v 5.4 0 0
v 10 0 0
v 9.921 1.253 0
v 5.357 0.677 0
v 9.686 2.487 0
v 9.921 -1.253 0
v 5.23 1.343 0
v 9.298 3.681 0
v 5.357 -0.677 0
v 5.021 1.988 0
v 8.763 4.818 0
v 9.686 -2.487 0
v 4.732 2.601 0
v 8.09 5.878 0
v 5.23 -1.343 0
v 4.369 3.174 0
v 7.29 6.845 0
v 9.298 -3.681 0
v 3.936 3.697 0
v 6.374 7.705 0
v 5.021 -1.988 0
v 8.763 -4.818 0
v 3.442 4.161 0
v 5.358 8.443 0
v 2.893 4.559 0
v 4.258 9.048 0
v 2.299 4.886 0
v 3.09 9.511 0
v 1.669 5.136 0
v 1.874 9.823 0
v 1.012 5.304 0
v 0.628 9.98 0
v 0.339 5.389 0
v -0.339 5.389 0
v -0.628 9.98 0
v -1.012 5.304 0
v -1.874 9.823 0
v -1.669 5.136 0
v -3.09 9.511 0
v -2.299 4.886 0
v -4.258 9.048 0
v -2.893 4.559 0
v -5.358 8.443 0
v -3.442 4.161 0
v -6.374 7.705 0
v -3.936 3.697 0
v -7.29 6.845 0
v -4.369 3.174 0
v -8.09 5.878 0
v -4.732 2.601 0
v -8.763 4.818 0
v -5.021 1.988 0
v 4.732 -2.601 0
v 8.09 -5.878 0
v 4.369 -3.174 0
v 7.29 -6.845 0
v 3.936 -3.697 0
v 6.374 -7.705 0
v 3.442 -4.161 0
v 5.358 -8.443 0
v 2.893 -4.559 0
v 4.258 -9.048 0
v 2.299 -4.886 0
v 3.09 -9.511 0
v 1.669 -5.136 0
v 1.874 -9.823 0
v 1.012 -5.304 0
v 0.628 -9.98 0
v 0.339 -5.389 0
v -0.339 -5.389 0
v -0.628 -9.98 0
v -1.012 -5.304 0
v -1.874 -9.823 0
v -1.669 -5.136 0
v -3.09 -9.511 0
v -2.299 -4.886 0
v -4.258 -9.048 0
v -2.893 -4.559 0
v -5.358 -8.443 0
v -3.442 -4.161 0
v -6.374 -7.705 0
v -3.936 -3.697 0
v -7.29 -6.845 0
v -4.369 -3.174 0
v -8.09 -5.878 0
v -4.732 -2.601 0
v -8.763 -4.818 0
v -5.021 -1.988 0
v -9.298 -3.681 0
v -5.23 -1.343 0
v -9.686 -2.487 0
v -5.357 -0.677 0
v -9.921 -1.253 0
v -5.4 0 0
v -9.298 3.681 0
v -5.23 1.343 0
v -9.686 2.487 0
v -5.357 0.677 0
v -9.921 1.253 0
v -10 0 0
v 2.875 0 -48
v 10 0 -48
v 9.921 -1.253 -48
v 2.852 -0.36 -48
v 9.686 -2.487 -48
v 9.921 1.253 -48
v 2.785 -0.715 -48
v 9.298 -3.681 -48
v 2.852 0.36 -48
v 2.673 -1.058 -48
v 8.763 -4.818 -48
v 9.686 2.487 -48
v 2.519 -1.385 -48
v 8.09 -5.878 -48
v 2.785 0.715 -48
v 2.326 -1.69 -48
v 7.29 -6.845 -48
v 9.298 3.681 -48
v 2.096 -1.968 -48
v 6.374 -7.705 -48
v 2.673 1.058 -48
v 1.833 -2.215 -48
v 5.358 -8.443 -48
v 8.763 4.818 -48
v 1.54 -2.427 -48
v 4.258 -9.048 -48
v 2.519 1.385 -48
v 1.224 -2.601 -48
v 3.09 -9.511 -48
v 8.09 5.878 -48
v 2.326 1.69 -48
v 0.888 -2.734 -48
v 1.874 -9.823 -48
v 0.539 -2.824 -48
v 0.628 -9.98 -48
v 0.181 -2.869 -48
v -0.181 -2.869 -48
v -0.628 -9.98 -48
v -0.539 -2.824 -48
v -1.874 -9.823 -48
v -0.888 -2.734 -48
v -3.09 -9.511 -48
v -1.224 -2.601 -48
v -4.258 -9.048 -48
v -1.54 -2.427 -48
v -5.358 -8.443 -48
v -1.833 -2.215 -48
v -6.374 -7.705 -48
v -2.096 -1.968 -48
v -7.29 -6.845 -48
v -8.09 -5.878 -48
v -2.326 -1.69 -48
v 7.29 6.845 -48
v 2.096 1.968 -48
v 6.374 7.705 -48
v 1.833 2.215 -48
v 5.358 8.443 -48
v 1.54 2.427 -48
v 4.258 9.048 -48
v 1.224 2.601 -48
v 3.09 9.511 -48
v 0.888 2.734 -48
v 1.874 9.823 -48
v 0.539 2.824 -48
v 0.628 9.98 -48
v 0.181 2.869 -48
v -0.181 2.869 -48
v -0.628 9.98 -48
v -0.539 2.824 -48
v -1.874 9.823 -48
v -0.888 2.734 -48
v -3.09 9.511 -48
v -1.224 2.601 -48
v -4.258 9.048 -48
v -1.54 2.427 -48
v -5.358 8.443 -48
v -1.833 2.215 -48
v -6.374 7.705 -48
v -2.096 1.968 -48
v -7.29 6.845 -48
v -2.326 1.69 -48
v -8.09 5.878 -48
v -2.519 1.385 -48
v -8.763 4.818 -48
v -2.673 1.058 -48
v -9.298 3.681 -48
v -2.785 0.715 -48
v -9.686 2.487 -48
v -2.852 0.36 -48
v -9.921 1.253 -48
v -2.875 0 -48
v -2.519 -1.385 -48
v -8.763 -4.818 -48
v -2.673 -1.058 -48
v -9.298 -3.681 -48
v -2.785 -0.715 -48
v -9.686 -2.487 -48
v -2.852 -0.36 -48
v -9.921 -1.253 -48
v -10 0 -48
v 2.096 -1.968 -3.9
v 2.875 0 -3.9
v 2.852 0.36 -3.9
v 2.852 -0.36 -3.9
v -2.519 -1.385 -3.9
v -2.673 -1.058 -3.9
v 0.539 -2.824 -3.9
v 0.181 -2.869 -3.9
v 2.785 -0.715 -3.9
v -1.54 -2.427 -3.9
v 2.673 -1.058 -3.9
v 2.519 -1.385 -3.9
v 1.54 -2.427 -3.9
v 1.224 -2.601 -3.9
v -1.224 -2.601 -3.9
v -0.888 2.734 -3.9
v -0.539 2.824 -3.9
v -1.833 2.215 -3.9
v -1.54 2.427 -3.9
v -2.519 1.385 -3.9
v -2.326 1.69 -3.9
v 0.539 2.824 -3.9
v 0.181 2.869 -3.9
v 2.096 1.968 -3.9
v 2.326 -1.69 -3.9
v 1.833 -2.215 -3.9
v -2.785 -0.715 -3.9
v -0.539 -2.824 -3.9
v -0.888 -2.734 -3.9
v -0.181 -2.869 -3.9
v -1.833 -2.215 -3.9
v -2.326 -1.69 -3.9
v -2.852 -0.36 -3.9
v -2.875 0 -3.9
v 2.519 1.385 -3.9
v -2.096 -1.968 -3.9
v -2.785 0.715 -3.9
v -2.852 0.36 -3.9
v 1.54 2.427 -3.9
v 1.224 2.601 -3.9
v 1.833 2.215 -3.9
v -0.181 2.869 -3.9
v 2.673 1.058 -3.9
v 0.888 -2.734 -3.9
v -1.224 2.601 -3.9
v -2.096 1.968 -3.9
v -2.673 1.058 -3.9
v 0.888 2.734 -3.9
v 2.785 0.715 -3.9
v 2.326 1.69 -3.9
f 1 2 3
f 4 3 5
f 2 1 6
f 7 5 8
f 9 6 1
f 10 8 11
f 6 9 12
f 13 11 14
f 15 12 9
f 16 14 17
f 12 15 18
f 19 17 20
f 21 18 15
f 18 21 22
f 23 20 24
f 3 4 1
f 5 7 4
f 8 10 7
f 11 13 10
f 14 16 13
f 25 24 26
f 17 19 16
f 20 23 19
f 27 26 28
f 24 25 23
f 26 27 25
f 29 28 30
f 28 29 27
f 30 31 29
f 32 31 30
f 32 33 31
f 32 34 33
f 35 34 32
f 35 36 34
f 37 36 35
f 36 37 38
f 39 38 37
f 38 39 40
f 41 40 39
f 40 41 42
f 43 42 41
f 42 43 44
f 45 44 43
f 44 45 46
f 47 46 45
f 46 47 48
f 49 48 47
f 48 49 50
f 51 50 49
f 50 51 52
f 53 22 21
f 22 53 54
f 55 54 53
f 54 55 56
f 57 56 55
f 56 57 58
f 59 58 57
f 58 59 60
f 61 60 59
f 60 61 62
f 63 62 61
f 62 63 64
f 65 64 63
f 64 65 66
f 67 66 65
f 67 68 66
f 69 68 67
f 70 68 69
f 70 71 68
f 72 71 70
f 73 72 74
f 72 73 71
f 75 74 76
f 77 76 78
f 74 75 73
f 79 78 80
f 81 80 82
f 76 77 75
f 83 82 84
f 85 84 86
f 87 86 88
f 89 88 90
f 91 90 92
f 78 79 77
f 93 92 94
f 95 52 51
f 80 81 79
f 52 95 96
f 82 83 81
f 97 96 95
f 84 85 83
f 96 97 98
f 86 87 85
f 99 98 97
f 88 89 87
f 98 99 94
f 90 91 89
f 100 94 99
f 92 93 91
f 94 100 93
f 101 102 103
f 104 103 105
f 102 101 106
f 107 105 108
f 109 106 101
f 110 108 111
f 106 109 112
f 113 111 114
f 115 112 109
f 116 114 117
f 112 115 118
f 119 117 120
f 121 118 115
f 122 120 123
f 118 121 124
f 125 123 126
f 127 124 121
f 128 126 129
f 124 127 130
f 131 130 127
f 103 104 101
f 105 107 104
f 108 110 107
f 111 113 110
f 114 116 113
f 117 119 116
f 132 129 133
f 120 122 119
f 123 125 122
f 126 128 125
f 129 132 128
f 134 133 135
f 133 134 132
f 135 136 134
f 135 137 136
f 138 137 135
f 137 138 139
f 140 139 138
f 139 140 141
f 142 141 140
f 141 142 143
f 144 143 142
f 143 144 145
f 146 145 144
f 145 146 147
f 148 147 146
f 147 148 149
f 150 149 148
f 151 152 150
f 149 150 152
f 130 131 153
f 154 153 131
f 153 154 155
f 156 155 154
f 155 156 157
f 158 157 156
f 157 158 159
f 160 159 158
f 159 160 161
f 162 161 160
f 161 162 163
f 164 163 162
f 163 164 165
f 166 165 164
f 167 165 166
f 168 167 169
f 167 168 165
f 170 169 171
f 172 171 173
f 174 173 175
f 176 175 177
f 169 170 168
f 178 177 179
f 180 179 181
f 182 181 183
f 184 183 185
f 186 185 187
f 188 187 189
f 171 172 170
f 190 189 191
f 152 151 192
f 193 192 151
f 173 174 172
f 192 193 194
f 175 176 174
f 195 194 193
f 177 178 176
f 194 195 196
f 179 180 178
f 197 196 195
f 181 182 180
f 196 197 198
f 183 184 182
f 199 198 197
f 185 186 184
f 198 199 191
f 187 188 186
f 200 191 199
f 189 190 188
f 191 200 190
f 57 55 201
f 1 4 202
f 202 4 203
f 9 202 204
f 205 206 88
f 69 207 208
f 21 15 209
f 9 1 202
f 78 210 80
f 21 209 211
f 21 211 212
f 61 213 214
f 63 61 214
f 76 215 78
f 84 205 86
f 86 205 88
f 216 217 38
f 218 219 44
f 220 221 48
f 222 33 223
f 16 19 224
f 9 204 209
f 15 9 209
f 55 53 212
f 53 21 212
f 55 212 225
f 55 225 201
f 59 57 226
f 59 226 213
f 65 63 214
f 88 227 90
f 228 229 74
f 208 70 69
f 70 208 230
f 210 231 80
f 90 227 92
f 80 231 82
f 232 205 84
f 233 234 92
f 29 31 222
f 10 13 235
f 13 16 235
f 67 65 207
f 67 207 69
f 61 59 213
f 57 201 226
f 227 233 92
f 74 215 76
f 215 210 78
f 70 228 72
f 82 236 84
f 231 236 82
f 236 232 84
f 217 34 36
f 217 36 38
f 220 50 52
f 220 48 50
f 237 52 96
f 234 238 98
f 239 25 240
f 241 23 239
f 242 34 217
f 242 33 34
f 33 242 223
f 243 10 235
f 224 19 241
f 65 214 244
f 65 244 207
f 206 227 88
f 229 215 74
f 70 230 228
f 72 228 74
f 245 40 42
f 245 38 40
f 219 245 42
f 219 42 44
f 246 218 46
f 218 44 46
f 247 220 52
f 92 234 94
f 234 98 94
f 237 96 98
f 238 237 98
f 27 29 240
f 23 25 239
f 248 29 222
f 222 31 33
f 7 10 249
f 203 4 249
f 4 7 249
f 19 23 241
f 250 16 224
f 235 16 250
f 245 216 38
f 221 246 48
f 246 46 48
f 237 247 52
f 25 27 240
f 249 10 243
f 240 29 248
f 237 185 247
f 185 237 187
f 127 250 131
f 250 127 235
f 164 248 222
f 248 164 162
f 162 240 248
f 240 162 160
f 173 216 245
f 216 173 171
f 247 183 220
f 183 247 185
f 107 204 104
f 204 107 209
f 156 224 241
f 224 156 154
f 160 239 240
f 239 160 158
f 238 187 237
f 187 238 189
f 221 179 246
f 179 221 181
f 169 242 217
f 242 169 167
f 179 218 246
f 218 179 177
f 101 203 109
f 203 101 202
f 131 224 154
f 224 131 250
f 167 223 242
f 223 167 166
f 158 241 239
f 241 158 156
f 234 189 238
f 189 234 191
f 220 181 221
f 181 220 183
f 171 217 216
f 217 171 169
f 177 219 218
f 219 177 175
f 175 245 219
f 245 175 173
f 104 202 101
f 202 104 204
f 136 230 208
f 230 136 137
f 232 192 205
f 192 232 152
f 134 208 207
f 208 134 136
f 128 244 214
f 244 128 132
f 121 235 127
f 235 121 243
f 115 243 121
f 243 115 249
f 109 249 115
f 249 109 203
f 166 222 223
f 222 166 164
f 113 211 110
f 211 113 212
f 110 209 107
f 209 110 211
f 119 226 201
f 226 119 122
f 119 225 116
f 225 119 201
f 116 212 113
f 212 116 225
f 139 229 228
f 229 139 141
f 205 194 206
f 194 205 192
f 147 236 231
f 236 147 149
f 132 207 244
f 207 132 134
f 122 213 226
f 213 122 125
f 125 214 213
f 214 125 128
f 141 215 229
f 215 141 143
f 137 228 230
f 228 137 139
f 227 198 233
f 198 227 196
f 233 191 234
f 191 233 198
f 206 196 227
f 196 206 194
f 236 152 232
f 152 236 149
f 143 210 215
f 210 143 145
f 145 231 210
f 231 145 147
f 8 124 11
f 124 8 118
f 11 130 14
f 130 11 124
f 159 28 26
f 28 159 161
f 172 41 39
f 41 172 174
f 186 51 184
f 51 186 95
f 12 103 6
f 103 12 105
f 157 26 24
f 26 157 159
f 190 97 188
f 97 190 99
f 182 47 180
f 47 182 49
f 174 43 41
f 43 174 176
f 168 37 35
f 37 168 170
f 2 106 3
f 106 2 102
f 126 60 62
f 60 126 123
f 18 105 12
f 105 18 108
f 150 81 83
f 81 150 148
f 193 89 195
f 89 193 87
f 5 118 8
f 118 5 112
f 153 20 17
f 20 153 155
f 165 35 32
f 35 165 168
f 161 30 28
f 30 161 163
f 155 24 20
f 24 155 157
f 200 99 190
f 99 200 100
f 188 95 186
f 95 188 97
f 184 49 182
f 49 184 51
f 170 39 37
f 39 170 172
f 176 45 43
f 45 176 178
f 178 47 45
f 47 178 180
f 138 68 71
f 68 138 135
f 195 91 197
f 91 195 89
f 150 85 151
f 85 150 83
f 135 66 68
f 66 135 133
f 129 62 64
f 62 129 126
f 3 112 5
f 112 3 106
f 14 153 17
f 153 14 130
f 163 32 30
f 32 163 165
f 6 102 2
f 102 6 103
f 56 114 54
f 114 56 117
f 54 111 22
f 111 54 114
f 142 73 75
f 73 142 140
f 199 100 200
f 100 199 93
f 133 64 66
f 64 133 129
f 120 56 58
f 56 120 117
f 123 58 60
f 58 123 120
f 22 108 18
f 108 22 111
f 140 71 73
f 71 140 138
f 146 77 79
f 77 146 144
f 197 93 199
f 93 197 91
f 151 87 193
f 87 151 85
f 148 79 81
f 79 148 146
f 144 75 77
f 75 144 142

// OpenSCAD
$fn = 50;


difference() {
	union() {
		translate(v = [0, 0, -48.0000000000]) {
			cylinder(h = 48, r = 10.0000000000);
		}
		cylinder(h = 0, r = 19.0000000000);
	}
	union() {
		translate(v = [0, 0, 0]) {
			rotate(a = [0, 0, 0]) {
				difference() {
					union() {
						#translate(v = [0, 0, -48.0000000000]) {
							cylinder(h = 48, r = 2.6000000000);
						}
						#translate(v = [0, 0, -3.9000000000]) {
							cylinder(h = 3.9000000000, r1 = 2.8750000000, r2 = 5.4000000000);
						}
						#translate(v = [0, 0, -48.0000000000]) {
							cylinder(h = 48, r = 2.8750000000);
						}
						#translate(v = [0, 0, -48.0000000000]) {
							cylinder(h = 48, r = 2.6000000000);
						}
					}
					union();
				}
			}
		}
	}
}
